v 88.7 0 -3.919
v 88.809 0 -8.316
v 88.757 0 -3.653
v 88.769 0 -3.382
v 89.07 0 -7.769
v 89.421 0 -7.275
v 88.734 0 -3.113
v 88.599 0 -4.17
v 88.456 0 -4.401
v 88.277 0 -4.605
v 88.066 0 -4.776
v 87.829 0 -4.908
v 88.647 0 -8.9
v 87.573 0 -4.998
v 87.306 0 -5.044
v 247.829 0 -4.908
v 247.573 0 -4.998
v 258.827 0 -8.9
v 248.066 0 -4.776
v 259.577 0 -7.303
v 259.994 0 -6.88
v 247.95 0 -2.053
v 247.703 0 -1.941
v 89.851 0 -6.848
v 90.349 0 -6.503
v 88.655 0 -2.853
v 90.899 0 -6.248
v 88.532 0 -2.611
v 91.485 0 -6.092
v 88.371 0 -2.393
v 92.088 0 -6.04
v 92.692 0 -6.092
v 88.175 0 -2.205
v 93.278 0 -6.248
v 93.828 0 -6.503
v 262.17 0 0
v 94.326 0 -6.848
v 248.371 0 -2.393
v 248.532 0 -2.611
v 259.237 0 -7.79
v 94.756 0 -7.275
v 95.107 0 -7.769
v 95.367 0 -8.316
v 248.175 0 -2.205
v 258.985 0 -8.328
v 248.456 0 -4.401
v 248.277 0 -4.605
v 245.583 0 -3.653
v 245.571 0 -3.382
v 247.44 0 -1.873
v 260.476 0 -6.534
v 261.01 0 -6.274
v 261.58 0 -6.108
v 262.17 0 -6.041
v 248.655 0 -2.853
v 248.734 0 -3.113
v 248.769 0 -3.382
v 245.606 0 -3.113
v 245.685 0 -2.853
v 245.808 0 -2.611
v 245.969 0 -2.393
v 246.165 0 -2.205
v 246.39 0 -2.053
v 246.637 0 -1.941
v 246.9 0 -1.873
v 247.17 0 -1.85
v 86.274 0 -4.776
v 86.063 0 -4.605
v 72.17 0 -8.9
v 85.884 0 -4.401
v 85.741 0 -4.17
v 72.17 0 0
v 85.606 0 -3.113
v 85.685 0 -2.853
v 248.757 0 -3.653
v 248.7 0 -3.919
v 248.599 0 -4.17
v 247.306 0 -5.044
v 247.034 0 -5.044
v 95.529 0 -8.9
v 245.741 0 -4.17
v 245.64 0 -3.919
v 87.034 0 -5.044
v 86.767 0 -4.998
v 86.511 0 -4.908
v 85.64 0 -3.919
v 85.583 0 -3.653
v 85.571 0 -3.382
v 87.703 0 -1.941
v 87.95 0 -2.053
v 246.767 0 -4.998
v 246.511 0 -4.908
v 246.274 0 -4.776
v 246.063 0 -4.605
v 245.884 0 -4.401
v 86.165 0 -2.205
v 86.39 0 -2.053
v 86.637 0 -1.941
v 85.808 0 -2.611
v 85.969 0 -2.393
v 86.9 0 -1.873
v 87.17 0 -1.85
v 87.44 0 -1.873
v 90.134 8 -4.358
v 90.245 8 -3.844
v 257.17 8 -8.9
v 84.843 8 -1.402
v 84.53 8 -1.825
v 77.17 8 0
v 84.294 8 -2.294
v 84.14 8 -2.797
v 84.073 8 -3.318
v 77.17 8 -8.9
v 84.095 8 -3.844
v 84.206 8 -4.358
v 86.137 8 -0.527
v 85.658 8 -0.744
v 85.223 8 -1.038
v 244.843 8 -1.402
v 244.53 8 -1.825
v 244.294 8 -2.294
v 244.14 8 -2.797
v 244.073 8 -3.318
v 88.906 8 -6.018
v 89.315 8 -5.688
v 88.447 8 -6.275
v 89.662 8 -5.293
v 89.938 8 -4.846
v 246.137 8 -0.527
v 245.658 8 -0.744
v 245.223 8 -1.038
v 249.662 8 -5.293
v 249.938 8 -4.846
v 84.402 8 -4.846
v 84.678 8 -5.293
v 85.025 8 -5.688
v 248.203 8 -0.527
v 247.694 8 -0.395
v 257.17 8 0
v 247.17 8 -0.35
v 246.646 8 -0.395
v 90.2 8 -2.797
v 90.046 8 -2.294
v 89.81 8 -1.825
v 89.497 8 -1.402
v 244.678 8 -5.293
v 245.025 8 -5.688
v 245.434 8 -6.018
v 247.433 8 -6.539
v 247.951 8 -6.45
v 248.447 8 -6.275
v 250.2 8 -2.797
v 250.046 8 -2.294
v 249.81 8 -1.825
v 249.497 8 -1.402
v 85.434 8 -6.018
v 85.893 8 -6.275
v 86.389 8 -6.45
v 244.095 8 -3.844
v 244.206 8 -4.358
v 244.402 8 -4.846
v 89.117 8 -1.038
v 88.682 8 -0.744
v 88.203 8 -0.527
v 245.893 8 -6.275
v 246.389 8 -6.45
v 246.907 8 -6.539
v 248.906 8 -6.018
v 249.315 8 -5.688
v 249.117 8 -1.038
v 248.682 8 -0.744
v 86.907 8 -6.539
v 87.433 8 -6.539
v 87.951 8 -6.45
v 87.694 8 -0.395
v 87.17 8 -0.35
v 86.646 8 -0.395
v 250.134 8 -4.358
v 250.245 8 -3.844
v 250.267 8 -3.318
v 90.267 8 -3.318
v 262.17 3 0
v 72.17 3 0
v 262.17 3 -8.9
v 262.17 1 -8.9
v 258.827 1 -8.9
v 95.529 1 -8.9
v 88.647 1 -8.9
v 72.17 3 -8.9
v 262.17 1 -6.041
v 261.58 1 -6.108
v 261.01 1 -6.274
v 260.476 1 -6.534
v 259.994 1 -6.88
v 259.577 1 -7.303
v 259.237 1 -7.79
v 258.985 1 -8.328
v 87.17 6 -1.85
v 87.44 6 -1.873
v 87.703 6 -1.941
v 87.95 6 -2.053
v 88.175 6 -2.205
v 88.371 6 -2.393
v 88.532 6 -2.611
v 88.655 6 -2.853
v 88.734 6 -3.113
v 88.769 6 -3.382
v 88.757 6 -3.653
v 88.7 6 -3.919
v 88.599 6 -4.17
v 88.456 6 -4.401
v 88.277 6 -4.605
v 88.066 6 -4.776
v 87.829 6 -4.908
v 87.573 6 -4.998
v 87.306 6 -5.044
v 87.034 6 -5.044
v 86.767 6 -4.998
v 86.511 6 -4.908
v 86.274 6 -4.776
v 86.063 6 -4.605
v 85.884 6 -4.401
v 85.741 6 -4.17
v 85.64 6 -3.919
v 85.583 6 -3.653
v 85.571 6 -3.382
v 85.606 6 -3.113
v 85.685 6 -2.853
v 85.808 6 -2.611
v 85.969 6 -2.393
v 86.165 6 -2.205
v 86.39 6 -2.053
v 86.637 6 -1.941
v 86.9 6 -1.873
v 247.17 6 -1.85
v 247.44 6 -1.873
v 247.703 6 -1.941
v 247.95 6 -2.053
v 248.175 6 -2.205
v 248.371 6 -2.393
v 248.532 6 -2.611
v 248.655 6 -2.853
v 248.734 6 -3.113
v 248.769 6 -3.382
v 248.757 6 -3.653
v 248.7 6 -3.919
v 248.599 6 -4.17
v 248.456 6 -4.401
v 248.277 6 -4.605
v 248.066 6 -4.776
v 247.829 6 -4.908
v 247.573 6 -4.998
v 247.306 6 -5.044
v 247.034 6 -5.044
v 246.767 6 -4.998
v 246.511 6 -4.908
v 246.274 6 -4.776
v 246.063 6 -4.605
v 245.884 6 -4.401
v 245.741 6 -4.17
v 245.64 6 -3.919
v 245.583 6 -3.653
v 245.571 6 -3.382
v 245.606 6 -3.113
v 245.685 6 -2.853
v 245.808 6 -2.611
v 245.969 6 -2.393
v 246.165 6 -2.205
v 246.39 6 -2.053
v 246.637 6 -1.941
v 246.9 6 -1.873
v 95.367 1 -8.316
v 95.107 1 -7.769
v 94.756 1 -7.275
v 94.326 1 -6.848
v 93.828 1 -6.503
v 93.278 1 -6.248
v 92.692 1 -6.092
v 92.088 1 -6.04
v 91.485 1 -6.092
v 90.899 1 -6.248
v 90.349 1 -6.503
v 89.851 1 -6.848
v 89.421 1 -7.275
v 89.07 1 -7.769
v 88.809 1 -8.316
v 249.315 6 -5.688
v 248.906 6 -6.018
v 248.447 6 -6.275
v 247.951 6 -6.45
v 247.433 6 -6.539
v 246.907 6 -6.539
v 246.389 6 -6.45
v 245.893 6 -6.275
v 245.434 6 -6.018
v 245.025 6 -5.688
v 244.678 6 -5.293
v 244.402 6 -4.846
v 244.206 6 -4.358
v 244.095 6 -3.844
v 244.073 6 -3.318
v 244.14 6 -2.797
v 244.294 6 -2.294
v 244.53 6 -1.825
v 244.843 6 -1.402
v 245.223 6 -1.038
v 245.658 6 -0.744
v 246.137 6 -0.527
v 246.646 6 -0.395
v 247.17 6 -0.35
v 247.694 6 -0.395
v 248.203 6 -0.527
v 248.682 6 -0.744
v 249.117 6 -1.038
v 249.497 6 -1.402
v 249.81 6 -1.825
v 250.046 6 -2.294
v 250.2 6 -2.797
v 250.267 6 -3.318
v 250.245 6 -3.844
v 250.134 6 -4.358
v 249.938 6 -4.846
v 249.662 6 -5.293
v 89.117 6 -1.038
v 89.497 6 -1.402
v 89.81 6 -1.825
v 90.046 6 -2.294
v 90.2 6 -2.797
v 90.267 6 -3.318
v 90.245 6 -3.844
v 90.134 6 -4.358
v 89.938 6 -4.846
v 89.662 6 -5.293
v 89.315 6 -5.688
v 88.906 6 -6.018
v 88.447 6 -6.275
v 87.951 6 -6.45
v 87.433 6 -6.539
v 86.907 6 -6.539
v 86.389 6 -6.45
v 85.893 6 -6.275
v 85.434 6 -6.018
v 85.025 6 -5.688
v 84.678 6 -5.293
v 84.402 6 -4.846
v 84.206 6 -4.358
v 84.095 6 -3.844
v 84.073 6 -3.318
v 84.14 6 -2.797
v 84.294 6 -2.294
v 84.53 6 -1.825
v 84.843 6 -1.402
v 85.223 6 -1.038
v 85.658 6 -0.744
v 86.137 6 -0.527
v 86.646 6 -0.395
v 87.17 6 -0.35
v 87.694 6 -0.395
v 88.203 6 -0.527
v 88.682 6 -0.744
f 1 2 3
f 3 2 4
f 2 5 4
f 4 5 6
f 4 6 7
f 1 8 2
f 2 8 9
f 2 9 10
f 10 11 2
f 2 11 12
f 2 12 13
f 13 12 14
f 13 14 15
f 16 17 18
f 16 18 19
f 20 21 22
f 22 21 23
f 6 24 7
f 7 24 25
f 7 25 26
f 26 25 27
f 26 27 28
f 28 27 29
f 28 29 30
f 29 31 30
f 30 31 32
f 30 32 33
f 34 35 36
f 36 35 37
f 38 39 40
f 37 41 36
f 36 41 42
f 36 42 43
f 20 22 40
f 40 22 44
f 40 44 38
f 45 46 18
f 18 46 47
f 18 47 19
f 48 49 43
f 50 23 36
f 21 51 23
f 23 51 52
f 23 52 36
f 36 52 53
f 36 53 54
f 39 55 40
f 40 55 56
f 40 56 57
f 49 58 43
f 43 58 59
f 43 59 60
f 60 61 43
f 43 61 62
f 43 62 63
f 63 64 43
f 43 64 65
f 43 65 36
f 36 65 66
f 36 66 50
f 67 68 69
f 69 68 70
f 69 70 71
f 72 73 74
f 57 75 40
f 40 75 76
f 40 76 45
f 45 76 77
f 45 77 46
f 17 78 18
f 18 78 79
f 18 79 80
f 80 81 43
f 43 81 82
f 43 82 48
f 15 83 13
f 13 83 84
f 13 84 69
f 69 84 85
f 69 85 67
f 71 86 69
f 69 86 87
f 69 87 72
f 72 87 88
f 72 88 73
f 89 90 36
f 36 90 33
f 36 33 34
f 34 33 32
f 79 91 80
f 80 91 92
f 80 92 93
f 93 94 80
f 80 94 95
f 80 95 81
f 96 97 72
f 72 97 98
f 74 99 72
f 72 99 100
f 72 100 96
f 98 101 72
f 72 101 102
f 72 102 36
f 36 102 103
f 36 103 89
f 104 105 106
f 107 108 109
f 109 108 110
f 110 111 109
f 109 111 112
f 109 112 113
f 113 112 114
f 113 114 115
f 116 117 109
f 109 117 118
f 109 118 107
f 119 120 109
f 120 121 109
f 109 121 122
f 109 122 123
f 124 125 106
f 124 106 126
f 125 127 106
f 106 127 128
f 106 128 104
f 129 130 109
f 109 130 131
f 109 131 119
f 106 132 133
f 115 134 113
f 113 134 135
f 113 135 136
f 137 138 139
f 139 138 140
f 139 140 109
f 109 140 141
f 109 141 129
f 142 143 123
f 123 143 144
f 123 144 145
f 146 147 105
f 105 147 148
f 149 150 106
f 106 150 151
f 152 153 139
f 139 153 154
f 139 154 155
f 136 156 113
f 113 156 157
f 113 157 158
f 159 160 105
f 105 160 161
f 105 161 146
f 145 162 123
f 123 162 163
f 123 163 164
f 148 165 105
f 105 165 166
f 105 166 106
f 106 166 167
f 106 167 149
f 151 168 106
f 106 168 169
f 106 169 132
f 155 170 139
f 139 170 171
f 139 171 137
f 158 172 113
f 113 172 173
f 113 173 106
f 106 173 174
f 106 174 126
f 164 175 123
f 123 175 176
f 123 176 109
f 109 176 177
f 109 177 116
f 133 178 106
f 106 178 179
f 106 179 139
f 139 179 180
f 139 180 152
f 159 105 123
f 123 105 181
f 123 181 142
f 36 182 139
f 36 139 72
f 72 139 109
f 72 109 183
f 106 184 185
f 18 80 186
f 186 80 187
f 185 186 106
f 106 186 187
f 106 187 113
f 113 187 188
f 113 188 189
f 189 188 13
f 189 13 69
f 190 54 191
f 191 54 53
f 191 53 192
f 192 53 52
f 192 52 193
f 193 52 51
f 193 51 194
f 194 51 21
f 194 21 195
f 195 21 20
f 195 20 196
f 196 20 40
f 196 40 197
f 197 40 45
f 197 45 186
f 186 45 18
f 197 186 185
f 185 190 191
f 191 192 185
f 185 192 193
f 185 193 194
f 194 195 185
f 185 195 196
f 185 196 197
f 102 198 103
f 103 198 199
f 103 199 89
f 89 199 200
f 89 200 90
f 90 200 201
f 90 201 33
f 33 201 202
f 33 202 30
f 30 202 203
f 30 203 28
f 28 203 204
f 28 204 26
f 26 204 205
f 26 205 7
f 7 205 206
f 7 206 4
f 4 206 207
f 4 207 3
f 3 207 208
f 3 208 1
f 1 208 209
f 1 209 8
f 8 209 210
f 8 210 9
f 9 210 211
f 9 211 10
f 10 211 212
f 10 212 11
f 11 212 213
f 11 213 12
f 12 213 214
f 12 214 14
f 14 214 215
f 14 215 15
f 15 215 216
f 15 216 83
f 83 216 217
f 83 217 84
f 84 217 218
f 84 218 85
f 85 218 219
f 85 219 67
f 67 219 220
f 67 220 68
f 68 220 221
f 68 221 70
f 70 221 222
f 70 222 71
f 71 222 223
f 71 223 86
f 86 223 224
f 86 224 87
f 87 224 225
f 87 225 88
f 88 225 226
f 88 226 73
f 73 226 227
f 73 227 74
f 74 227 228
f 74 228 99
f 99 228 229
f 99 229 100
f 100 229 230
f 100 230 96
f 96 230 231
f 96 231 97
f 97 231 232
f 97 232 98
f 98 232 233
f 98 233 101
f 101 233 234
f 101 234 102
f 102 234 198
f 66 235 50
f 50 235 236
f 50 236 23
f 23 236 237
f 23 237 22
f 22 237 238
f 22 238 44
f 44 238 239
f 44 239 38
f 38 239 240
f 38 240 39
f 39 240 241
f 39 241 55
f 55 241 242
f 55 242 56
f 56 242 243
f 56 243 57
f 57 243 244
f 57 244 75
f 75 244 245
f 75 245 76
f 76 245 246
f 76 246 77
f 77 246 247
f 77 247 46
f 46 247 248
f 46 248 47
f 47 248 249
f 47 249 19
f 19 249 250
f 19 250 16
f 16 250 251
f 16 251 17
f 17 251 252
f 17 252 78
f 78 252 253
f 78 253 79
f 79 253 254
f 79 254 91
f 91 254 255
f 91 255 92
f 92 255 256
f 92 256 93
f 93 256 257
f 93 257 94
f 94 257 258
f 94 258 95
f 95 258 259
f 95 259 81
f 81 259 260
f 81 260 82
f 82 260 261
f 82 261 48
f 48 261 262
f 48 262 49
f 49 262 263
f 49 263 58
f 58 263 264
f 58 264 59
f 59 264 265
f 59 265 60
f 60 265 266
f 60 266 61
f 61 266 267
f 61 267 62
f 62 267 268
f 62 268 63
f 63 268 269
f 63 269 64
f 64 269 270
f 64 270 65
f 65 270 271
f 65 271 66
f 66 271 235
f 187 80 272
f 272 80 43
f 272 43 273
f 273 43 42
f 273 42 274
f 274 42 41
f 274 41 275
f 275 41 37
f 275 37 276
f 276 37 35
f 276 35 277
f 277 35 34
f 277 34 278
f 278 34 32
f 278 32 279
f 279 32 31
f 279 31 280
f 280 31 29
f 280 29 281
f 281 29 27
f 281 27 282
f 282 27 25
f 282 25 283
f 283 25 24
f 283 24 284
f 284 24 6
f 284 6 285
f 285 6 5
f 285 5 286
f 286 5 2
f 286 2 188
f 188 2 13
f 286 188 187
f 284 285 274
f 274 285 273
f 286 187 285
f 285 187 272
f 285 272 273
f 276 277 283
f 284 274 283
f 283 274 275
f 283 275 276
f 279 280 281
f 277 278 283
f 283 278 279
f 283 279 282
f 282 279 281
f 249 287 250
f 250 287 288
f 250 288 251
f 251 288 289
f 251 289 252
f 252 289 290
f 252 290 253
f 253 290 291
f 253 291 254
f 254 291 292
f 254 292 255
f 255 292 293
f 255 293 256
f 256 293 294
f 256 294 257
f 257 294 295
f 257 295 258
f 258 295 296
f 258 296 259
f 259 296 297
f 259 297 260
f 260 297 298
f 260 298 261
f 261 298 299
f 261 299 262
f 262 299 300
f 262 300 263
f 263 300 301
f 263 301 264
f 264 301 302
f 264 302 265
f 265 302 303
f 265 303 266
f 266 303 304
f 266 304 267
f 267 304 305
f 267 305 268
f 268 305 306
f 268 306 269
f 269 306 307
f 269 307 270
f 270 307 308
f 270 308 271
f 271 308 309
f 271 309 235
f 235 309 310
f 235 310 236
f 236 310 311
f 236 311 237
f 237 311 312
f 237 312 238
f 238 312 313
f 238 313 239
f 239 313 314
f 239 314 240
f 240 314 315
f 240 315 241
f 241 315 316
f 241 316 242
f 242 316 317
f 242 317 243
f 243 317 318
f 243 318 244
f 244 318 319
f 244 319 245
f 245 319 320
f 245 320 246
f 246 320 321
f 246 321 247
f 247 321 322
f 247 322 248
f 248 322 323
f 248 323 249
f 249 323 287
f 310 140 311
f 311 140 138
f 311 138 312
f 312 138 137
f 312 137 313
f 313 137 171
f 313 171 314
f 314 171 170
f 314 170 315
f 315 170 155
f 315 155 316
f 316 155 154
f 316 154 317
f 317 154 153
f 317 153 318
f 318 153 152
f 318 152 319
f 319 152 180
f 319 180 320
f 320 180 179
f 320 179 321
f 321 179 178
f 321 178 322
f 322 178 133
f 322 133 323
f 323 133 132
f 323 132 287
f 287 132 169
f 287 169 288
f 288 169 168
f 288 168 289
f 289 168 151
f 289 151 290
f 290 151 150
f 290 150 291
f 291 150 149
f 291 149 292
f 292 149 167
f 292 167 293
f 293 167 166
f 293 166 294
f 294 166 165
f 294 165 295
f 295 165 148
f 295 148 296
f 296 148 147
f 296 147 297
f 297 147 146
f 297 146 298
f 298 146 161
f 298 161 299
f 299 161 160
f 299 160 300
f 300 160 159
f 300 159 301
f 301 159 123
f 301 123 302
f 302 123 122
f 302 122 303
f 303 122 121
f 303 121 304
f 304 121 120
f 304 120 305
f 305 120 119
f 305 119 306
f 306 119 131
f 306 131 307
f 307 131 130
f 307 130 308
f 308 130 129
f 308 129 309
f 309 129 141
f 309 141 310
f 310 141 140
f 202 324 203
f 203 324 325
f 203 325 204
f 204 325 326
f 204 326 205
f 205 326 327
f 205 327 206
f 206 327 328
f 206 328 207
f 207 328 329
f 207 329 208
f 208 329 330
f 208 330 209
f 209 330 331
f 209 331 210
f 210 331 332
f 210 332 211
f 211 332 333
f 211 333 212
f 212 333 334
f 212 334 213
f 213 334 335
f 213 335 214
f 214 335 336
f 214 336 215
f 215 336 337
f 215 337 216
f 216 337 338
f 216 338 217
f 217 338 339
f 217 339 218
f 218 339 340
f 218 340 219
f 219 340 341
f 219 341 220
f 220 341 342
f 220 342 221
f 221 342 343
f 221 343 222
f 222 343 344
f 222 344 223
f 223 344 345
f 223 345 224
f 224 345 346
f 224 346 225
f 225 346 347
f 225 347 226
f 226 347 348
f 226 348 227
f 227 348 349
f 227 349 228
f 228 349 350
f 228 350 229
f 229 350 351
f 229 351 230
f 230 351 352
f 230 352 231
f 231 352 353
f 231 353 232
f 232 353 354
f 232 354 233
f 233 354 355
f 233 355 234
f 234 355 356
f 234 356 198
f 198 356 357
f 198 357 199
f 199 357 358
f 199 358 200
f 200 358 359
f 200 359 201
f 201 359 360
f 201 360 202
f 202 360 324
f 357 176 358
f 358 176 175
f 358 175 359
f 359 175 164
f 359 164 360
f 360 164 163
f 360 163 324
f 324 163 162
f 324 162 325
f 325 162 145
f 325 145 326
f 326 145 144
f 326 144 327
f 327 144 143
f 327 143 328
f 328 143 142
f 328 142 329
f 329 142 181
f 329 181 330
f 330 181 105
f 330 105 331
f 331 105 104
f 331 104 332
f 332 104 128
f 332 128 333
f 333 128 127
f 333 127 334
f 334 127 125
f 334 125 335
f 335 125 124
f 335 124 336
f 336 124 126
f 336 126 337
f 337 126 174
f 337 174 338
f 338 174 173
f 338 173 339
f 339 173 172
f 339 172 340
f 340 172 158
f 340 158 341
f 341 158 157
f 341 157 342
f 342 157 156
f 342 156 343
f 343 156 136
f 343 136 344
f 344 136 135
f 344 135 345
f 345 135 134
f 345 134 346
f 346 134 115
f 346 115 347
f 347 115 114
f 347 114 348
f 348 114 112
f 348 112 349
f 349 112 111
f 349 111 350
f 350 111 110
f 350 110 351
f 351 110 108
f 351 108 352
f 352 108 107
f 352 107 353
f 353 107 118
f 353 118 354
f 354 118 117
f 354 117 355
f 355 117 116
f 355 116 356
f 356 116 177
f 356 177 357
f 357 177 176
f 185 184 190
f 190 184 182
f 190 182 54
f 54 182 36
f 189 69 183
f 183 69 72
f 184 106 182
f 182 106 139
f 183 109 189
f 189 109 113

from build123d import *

# Parameters (mm, degrees)
SKETCH_1_W              = 337.35
SKETCH_1_H              = 116.87
SKETCH_1_W_2            = 324.05
SKETCH_1_H_2            = 103.07
EXTRUDE_1_DEPTH         = 8
FILLET_1_R              = 5
HOLE_WIZARD_3_2_3_2_1_D = 3.2
SKETCH_5_W              = 32
SKETCH_5_H              = 1.5
CUT_EXTRUDE_1_DEPTH     = 355.911853
EXTRUDE_2_REACH         = 356.912
SKETCH_6_W              = 3
SKETCH_6_H              = 8
SKETCH_7_W              = 257.05
SKETCH_7_H              = 8
EXTRUDE_3_DEPTH         = 4
SKETCH_8_W              = 257.05
SKETCH_8_H              = 4
EXTRUDE_4_DEPTH         = 3
SKETCH_11_W             = 99.07
SKETCH_11_H             = 11
EXTRUDE_5_DEPTH         = 2
SKETCH_13_W             = 42
SKETCH_13_H             = 4.5
CUT_EXTRUDE_2_DEPTH     = 354.692894189
SKETCH_14_W             = 121.5
SKETCH_14_H             = 1.5
CUT_EXTRUDE_3_DEPTH     = 355.911853
SKETCH_16_W             = 32
SKETCH_16_H             = 6.5
EXTRUDE_7_DEPTH         = 4
SKETCH_17_W             = 103.07
SKETCH_17_H             = 3
CUT_EXTRUDE_4_DEPTH     = 0.1
EXTRUDE_8_DEPTH         = 2
SKETCH_19_W             = 70.55
SKETCH_19_H             = 2
SKETCH_19_W_2           = 95
EXTRUDE_9_DEPTH         = 3
SKETCH_20_R             = 3.5
CUT_EXTRUDE_5_DEPTH     = 4
SKETCH_21_R             = 3.1
CUT_EXTRUDE_6_DEPTH     = 2
EXTRUDE_10_DEPTH        = 2
EXTRUDE_10_DEPTH_BACK   = 3
SKETCH_22_W             = 6
SKETCH_22_H             = 6
SKETCH_22_R             = 1.5
SKETCH_23_W             = 10
SKETCH_23_H             = 1.5
SKETCH_23_W_2           = 15
CUT_EXTRUDE_7_DEPTH     = 6.9
SKETCH_24_W             = 103.07
SKETCH_24_H             = 3
CUT_EXTRUDE_8_DEPTH     = 358.110094229
SKETCH_25_W             = 402.768513644
SKETCH_25_H             = 192.082702388
SKETCH_25_W_2           = 190
SKETCH_25_H_2           = 48.964424343
CUT_EXTRUDE_9_DEPTH     = 358.110094229
CHAMFER_1_SIZE          = 5
SKETCH_26_W             = 121.5
SKETCH_26_H             = 8.9
EXTRUDE_11_DEPTH        = 1.5


with BuildPart() as part:
    # 草图1 → 凸台-拉伸1 (new body)
    with BuildSketch(Plane(origin=(0, 0, 0), x_dir=(1, 0, 0), z_dir=(0, 1, 0))):
        with Locations((168.675, 58.435)):
            Rectangle(SKETCH_1_W, SKETCH_1_H)
        with Locations((168.925, 58.435)):
            Rectangle(SKETCH_1_W_2, SKETCH_1_H_2, mode=Mode.SUBTRACT)
    extrude(amount=EXTRUDE_1_DEPTH)

    # 圆角1
    fillet_1_edges = [part.edges().sort_by_distance(p)[0] for p in [
        (0, 4, -116.87),
        (337.35, 4, -116.87),
        (337.35, 4, 0),
        (0, 4, 0),
    ]]
    fillet(fillet_1_edges, radius=FILLET_1_R)

    # Ø3.2 (3.2) 直径孔1 (through all)
    with Locations(Plane(origin=(0, 8, 0), x_dir=(1, 0, 0), z_dir=(0, 1, 0))):
        with Locations((3.45, 98.435), (87.17, 113.42), (247.17, 113.42), (334.15, 98.435), (334.15, 18.435), (247.17, 3.45), (87.17, 3.45), (3.45, 18.435)):
            Hole(HOLE_WIZARD_3_2_3_2_1_D / 2)

    # 草图5 → 切除-拉伸1 (cut, through all)
    with BuildSketch(Plane.XY.offset(-109.97)):
        with Locations((57.9, 0.75)):
            Rectangle(SKETCH_5_W, SKETCH_5_H)
    extrude(amount=-CUT_EXTRUDE_1_DEPTH, mode=Mode.SUBTRACT)

    # 草图6 → 凸台-拉伸2 (add, up to next)
    with BuildSketch(Plane.XY.offset(-109.97), mode=Mode.PRIVATE) as extrude_2_sk1:
        with Locations((40.4, 4)):
            Rectangle(SKETCH_6_W, SKETCH_6_H)
    extrude_2_tool1 = extrude(extrude_2_sk1.sketch, amount=EXTRUDE_2_REACH, mode=Mode.PRIVATE) - part.part
    add(extrude_2_tool1.solids().sort_by_distance((40.4, 4, -109.97))[0])

    # 草图7 → 凸台-拉伸3 (add)
    with BuildSketch(Plane.XY.offset(-109.97)):
        with Locations((202.425, 4)):
            Rectangle(SKETCH_7_W, SKETCH_7_H)
    extrude(amount=EXTRUDE_3_DEPTH)

    # 草图8 → 凸台-拉伸4 (add)
    with BuildSketch(Plane.XZ):
        with Locations((202.425, -107.97)):
            Rectangle(SKETCH_8_W, SKETCH_8_H)
    extrude(amount=EXTRUDE_4_DEPTH)

    # 草图11 → 凸台-拉伸5 (add)
    with BuildSketch(Plane.ZY.offset(-330.95)):
        with Locations((-56.435, 2.5)):
            Rectangle(SKETCH_11_W, SKETCH_11_H)
    extrude(amount=EXTRUDE_5_DEPTH)

    # 草图13 → 切除-拉伸2 (cut, through all)
    with BuildSketch(Plane.XY.offset(-105.97)):
        with Locations((307.95, -0.75)):
            Rectangle(SKETCH_13_W, SKETCH_13_H)
    extrude(amount=-CUT_EXTRUDE_2_DEPTH, mode=Mode.SUBTRACT)

    # 草图14 → 切除-拉伸3 (cut, through all)
    with BuildSketch(Plane(origin=(0, 0, -6.9), x_dir=(-1, 0, 0), z_dir=(0, 0, -1))):
        with Locations((-173.2, 0.75)):
            Rectangle(SKETCH_14_W, SKETCH_14_H)
    extrude(amount=-CUT_EXTRUDE_3_DEPTH, mode=Mode.SUBTRACT)

    # 草图16 → 凸台-拉伸7 (add)
    with BuildSketch(Plane.XY.offset(-109.97)):
        with Locations((57.9, 4.75)):
            Rectangle(SKETCH_16_W, SKETCH_16_H)
    extrude(amount=EXTRUDE_7_DEPTH)

    # 草图17 → 切除-拉伸4 (cut)
    with BuildSketch(Plane(origin=(330.95, 0, 0), x_dir=(0, 0, -1), z_dir=(1, 0, 0))):
        with Locations((58.435, -1.5)):
            Rectangle(SKETCH_17_W, SKETCH_17_H)
    extrude(amount=-CUT_EXTRUDE_4_DEPTH, mode=Mode.SUBTRACT)

    # 草图18 → 凸台-拉伸8 (add)
    with BuildSketch(Plane(origin=(0, 0, -6.9), x_dir=(-1, 0, 0), z_dir=(0, 0, -1))):
        Polygon((-233.95, 0), (-233.95, 1.5), (-112.45, 1.5), (-112.45, 0), (-41.9, 0), (-41.9, 8), (-328.95, 8), (-328.95, 0), align=None)
    extrude(amount=EXTRUDE_8_DEPTH)

    # 草图19 → 凸台-拉伸9 (add)
    with BuildSketch(Plane.XZ):
        with Locations((77.175, -7.9)):
            Rectangle(SKETCH_19_W, SKETCH_19_H)
        with Locations((281.45, -7.9)):
            Rectangle(SKETCH_19_W_2, SKETCH_19_H)
    extrude(amount=EXTRUDE_9_DEPTH)

    # 草图20 → 切除-拉伸5 (cut)
    with BuildSketch(Plane.XZ.offset(3)):
        with Locations((92.088456012, -9.54)):
            Circle(SKETCH_20_R)
        with Locations((262.268456012, -9.54)):
            Circle(SKETCH_20_R)
        with Locations((328.308456012, -13.35)):
            Circle(SKETCH_20_R)
        with Locations((328.308456012, -74.31)):
            Circle(SKETCH_20_R)
        with Locations((137.808456012, -107.33)):
            Circle(SKETCH_20_R)
        with Locations((22.238456012, -9.54)):
            Circle(SKETCH_20_R)
        with Locations((9.538456012, -23.51)):
            Circle(SKETCH_20_R)
        with Locations((9.538456012, -103.52)):
            Circle(SKETCH_20_R)
    extrude(amount=-CUT_EXTRUDE_5_DEPTH, mode=Mode.SUBTRACT)

    # 草图21 → 切除-拉伸6 (cut)
    with BuildSketch(Plane(origin=(0, 8, 0), x_dir=(1, 0, 0), z_dir=(0, 1, 0))):
        with Locations(Location((87.17, 113.42, 0), (0, 0, 270))):
            Circle(SKETCH_21_R)
        with Locations(Location((247.17, 113.42, 0), (0, 0, 270))):
            Circle(SKETCH_21_R)
        with Locations(Location((334.15, 98.435, 0), (0, 0, 270))):
            Circle(SKETCH_21_R)
        with Locations(Location((334.15, 18.435, 0), (0, 0, 270))):
            Circle(SKETCH_21_R)
        with Locations(Location((247.17, 3.45, 0), (0, 0, 270))):
            Circle(SKETCH_21_R)
        with Locations(Location((87.17, 3.45, 0), (0, 0, 270))):
            Circle(SKETCH_21_R)
        with Locations(Location((3.45, 18.435, 0), (0, 0, 270))):
            Circle(SKETCH_21_R)
        with Locations(Location((3.45, 98.435, 0), (0, 0, 270))):
            Circle(SKETCH_21_R)
    extrude(amount=-CUT_EXTRUDE_6_DEPTH, mode=Mode.SUBTRACT)

    # 草图22 → 凸台-拉伸10 (add, two sides: drawn at the far end of the back side and taken through both)
    # profile 1 of 4: a face of its own
    with BuildSketch(Plane(origin=(0, 4, 0), x_dir=(1, 0, 0), z_dir=(0, 1, 0)).offset(-EXTRUDE_10_DEPTH_BACK)):
        with Locations((9.9, 106.97)):
            Rectangle(SKETCH_22_W, SKETCH_22_H)
        with Locations(Location((9.9, 106.97, 0), (0, 0, 90))):
            Circle(SKETCH_22_R, mode=Mode.SUBTRACT)
    # profile 2 of 4: a face of its own
    with BuildSketch(Plane(origin=(0, 4, 0), x_dir=(1, 0, 0), z_dir=(0, 1, 0)).offset(-EXTRUDE_10_DEPTH_BACK)):
        with Locations((35.9, 106.97)):
            Rectangle(SKETCH_22_W, SKETCH_22_H)
        with Locations(Location((35.9, 106.97, 0), (0, 0, 90))):
            Circle(SKETCH_22_R, mode=Mode.SUBTRACT)
    # profile 3 of 4: a face of its own
    with BuildSketch(Plane(origin=(0, 4, 0), x_dir=(1, 0, 0), z_dir=(0, 1, 0)).offset(-EXTRUDE_10_DEPTH_BACK)):
        with Locations((9.9, 9.9)):
            Rectangle(SKETCH_22_W, SKETCH_22_H)
        with Locations(Location((9.9, 9.9, 0), (0, 0, 90))):
            Circle(SKETCH_22_R, mode=Mode.SUBTRACT)
    # profile 4 of 4: a face of its own
    with BuildSketch(Plane(origin=(0, 4, 0), x_dir=(1, 0, 0), z_dir=(0, 1, 0)).offset(-EXTRUDE_10_DEPTH_BACK)):
        with Locations((35.9, 9.9)):
            Rectangle(SKETCH_22_W, SKETCH_22_H)
        with Locations(Location((35.9, 9.9, 0), (0, 0, 90))):
            Circle(SKETCH_22_R, mode=Mode.SUBTRACT)
    extrude(amount=EXTRUDE_10_DEPTH + EXTRUDE_10_DEPTH_BACK)

    # 草图23 → 切除-拉伸7 (cut)
    with BuildSketch(Plane.ZY):
        with Locations((-63.435, 0.75)):
            Rectangle(SKETCH_23_W, SKETCH_23_H)
        with Locations((-50.935, 0.75)):
            Rectangle(SKETCH_23_W_2, SKETCH_23_H)
    extrude(amount=-CUT_EXTRUDE_7_DEPTH, mode=Mode.SUBTRACT)

    # 草图24 → 切除-拉伸8 (cut, through all)
    with BuildSketch(Plane(origin=(337.35, 0, 0), x_dir=(0, 0, -1), z_dir=(1, 0, 0))):
        with Locations((58.435, -1.5)):
            Rectangle(SKETCH_24_W, SKETCH_24_H)
    extrude(amount=-CUT_EXTRUDE_8_DEPTH, mode=Mode.SUBTRACT)

    # 草图25 → 切除-拉伸9 (cut, through all)
    with BuildSketch(Plane(origin=(0, 8, 0), x_dir=(1, 0, 0), z_dir=(0, 1, 0))):
        with Locations((167.276381716, 50.966242561)):
            Rectangle(SKETCH_25_W, SKETCH_25_H)
        with Locations((167.17, 6.206921893)):
            Rectangle(SKETCH_25_W_2, SKETCH_25_H_2, mode=Mode.SUBTRACT)
    extrude(amount=-CUT_EXTRUDE_9_DEPTH, mode=Mode.SUBTRACT)

    # 倒角1
    chamfer_1_edges = [part.edges().sort_by_distance(p)[0] for p in [
        (72.17, 8, -4.45),
        (262.17, 8, -4.45),
    ]]
    chamfer(chamfer_1_edges, length=CHAMFER_1_SIZE)

    # 草图26 → 凸台-拉伸11 (add)
    with BuildSketch(Plane.XZ.offset(-1.5)):
        with Locations((173.2, -4.45)):
            Rectangle(SKETCH_26_W, SKETCH_26_H)
    extrude(amount=EXTRUDE_11_DEPTH)


solid = part.part
